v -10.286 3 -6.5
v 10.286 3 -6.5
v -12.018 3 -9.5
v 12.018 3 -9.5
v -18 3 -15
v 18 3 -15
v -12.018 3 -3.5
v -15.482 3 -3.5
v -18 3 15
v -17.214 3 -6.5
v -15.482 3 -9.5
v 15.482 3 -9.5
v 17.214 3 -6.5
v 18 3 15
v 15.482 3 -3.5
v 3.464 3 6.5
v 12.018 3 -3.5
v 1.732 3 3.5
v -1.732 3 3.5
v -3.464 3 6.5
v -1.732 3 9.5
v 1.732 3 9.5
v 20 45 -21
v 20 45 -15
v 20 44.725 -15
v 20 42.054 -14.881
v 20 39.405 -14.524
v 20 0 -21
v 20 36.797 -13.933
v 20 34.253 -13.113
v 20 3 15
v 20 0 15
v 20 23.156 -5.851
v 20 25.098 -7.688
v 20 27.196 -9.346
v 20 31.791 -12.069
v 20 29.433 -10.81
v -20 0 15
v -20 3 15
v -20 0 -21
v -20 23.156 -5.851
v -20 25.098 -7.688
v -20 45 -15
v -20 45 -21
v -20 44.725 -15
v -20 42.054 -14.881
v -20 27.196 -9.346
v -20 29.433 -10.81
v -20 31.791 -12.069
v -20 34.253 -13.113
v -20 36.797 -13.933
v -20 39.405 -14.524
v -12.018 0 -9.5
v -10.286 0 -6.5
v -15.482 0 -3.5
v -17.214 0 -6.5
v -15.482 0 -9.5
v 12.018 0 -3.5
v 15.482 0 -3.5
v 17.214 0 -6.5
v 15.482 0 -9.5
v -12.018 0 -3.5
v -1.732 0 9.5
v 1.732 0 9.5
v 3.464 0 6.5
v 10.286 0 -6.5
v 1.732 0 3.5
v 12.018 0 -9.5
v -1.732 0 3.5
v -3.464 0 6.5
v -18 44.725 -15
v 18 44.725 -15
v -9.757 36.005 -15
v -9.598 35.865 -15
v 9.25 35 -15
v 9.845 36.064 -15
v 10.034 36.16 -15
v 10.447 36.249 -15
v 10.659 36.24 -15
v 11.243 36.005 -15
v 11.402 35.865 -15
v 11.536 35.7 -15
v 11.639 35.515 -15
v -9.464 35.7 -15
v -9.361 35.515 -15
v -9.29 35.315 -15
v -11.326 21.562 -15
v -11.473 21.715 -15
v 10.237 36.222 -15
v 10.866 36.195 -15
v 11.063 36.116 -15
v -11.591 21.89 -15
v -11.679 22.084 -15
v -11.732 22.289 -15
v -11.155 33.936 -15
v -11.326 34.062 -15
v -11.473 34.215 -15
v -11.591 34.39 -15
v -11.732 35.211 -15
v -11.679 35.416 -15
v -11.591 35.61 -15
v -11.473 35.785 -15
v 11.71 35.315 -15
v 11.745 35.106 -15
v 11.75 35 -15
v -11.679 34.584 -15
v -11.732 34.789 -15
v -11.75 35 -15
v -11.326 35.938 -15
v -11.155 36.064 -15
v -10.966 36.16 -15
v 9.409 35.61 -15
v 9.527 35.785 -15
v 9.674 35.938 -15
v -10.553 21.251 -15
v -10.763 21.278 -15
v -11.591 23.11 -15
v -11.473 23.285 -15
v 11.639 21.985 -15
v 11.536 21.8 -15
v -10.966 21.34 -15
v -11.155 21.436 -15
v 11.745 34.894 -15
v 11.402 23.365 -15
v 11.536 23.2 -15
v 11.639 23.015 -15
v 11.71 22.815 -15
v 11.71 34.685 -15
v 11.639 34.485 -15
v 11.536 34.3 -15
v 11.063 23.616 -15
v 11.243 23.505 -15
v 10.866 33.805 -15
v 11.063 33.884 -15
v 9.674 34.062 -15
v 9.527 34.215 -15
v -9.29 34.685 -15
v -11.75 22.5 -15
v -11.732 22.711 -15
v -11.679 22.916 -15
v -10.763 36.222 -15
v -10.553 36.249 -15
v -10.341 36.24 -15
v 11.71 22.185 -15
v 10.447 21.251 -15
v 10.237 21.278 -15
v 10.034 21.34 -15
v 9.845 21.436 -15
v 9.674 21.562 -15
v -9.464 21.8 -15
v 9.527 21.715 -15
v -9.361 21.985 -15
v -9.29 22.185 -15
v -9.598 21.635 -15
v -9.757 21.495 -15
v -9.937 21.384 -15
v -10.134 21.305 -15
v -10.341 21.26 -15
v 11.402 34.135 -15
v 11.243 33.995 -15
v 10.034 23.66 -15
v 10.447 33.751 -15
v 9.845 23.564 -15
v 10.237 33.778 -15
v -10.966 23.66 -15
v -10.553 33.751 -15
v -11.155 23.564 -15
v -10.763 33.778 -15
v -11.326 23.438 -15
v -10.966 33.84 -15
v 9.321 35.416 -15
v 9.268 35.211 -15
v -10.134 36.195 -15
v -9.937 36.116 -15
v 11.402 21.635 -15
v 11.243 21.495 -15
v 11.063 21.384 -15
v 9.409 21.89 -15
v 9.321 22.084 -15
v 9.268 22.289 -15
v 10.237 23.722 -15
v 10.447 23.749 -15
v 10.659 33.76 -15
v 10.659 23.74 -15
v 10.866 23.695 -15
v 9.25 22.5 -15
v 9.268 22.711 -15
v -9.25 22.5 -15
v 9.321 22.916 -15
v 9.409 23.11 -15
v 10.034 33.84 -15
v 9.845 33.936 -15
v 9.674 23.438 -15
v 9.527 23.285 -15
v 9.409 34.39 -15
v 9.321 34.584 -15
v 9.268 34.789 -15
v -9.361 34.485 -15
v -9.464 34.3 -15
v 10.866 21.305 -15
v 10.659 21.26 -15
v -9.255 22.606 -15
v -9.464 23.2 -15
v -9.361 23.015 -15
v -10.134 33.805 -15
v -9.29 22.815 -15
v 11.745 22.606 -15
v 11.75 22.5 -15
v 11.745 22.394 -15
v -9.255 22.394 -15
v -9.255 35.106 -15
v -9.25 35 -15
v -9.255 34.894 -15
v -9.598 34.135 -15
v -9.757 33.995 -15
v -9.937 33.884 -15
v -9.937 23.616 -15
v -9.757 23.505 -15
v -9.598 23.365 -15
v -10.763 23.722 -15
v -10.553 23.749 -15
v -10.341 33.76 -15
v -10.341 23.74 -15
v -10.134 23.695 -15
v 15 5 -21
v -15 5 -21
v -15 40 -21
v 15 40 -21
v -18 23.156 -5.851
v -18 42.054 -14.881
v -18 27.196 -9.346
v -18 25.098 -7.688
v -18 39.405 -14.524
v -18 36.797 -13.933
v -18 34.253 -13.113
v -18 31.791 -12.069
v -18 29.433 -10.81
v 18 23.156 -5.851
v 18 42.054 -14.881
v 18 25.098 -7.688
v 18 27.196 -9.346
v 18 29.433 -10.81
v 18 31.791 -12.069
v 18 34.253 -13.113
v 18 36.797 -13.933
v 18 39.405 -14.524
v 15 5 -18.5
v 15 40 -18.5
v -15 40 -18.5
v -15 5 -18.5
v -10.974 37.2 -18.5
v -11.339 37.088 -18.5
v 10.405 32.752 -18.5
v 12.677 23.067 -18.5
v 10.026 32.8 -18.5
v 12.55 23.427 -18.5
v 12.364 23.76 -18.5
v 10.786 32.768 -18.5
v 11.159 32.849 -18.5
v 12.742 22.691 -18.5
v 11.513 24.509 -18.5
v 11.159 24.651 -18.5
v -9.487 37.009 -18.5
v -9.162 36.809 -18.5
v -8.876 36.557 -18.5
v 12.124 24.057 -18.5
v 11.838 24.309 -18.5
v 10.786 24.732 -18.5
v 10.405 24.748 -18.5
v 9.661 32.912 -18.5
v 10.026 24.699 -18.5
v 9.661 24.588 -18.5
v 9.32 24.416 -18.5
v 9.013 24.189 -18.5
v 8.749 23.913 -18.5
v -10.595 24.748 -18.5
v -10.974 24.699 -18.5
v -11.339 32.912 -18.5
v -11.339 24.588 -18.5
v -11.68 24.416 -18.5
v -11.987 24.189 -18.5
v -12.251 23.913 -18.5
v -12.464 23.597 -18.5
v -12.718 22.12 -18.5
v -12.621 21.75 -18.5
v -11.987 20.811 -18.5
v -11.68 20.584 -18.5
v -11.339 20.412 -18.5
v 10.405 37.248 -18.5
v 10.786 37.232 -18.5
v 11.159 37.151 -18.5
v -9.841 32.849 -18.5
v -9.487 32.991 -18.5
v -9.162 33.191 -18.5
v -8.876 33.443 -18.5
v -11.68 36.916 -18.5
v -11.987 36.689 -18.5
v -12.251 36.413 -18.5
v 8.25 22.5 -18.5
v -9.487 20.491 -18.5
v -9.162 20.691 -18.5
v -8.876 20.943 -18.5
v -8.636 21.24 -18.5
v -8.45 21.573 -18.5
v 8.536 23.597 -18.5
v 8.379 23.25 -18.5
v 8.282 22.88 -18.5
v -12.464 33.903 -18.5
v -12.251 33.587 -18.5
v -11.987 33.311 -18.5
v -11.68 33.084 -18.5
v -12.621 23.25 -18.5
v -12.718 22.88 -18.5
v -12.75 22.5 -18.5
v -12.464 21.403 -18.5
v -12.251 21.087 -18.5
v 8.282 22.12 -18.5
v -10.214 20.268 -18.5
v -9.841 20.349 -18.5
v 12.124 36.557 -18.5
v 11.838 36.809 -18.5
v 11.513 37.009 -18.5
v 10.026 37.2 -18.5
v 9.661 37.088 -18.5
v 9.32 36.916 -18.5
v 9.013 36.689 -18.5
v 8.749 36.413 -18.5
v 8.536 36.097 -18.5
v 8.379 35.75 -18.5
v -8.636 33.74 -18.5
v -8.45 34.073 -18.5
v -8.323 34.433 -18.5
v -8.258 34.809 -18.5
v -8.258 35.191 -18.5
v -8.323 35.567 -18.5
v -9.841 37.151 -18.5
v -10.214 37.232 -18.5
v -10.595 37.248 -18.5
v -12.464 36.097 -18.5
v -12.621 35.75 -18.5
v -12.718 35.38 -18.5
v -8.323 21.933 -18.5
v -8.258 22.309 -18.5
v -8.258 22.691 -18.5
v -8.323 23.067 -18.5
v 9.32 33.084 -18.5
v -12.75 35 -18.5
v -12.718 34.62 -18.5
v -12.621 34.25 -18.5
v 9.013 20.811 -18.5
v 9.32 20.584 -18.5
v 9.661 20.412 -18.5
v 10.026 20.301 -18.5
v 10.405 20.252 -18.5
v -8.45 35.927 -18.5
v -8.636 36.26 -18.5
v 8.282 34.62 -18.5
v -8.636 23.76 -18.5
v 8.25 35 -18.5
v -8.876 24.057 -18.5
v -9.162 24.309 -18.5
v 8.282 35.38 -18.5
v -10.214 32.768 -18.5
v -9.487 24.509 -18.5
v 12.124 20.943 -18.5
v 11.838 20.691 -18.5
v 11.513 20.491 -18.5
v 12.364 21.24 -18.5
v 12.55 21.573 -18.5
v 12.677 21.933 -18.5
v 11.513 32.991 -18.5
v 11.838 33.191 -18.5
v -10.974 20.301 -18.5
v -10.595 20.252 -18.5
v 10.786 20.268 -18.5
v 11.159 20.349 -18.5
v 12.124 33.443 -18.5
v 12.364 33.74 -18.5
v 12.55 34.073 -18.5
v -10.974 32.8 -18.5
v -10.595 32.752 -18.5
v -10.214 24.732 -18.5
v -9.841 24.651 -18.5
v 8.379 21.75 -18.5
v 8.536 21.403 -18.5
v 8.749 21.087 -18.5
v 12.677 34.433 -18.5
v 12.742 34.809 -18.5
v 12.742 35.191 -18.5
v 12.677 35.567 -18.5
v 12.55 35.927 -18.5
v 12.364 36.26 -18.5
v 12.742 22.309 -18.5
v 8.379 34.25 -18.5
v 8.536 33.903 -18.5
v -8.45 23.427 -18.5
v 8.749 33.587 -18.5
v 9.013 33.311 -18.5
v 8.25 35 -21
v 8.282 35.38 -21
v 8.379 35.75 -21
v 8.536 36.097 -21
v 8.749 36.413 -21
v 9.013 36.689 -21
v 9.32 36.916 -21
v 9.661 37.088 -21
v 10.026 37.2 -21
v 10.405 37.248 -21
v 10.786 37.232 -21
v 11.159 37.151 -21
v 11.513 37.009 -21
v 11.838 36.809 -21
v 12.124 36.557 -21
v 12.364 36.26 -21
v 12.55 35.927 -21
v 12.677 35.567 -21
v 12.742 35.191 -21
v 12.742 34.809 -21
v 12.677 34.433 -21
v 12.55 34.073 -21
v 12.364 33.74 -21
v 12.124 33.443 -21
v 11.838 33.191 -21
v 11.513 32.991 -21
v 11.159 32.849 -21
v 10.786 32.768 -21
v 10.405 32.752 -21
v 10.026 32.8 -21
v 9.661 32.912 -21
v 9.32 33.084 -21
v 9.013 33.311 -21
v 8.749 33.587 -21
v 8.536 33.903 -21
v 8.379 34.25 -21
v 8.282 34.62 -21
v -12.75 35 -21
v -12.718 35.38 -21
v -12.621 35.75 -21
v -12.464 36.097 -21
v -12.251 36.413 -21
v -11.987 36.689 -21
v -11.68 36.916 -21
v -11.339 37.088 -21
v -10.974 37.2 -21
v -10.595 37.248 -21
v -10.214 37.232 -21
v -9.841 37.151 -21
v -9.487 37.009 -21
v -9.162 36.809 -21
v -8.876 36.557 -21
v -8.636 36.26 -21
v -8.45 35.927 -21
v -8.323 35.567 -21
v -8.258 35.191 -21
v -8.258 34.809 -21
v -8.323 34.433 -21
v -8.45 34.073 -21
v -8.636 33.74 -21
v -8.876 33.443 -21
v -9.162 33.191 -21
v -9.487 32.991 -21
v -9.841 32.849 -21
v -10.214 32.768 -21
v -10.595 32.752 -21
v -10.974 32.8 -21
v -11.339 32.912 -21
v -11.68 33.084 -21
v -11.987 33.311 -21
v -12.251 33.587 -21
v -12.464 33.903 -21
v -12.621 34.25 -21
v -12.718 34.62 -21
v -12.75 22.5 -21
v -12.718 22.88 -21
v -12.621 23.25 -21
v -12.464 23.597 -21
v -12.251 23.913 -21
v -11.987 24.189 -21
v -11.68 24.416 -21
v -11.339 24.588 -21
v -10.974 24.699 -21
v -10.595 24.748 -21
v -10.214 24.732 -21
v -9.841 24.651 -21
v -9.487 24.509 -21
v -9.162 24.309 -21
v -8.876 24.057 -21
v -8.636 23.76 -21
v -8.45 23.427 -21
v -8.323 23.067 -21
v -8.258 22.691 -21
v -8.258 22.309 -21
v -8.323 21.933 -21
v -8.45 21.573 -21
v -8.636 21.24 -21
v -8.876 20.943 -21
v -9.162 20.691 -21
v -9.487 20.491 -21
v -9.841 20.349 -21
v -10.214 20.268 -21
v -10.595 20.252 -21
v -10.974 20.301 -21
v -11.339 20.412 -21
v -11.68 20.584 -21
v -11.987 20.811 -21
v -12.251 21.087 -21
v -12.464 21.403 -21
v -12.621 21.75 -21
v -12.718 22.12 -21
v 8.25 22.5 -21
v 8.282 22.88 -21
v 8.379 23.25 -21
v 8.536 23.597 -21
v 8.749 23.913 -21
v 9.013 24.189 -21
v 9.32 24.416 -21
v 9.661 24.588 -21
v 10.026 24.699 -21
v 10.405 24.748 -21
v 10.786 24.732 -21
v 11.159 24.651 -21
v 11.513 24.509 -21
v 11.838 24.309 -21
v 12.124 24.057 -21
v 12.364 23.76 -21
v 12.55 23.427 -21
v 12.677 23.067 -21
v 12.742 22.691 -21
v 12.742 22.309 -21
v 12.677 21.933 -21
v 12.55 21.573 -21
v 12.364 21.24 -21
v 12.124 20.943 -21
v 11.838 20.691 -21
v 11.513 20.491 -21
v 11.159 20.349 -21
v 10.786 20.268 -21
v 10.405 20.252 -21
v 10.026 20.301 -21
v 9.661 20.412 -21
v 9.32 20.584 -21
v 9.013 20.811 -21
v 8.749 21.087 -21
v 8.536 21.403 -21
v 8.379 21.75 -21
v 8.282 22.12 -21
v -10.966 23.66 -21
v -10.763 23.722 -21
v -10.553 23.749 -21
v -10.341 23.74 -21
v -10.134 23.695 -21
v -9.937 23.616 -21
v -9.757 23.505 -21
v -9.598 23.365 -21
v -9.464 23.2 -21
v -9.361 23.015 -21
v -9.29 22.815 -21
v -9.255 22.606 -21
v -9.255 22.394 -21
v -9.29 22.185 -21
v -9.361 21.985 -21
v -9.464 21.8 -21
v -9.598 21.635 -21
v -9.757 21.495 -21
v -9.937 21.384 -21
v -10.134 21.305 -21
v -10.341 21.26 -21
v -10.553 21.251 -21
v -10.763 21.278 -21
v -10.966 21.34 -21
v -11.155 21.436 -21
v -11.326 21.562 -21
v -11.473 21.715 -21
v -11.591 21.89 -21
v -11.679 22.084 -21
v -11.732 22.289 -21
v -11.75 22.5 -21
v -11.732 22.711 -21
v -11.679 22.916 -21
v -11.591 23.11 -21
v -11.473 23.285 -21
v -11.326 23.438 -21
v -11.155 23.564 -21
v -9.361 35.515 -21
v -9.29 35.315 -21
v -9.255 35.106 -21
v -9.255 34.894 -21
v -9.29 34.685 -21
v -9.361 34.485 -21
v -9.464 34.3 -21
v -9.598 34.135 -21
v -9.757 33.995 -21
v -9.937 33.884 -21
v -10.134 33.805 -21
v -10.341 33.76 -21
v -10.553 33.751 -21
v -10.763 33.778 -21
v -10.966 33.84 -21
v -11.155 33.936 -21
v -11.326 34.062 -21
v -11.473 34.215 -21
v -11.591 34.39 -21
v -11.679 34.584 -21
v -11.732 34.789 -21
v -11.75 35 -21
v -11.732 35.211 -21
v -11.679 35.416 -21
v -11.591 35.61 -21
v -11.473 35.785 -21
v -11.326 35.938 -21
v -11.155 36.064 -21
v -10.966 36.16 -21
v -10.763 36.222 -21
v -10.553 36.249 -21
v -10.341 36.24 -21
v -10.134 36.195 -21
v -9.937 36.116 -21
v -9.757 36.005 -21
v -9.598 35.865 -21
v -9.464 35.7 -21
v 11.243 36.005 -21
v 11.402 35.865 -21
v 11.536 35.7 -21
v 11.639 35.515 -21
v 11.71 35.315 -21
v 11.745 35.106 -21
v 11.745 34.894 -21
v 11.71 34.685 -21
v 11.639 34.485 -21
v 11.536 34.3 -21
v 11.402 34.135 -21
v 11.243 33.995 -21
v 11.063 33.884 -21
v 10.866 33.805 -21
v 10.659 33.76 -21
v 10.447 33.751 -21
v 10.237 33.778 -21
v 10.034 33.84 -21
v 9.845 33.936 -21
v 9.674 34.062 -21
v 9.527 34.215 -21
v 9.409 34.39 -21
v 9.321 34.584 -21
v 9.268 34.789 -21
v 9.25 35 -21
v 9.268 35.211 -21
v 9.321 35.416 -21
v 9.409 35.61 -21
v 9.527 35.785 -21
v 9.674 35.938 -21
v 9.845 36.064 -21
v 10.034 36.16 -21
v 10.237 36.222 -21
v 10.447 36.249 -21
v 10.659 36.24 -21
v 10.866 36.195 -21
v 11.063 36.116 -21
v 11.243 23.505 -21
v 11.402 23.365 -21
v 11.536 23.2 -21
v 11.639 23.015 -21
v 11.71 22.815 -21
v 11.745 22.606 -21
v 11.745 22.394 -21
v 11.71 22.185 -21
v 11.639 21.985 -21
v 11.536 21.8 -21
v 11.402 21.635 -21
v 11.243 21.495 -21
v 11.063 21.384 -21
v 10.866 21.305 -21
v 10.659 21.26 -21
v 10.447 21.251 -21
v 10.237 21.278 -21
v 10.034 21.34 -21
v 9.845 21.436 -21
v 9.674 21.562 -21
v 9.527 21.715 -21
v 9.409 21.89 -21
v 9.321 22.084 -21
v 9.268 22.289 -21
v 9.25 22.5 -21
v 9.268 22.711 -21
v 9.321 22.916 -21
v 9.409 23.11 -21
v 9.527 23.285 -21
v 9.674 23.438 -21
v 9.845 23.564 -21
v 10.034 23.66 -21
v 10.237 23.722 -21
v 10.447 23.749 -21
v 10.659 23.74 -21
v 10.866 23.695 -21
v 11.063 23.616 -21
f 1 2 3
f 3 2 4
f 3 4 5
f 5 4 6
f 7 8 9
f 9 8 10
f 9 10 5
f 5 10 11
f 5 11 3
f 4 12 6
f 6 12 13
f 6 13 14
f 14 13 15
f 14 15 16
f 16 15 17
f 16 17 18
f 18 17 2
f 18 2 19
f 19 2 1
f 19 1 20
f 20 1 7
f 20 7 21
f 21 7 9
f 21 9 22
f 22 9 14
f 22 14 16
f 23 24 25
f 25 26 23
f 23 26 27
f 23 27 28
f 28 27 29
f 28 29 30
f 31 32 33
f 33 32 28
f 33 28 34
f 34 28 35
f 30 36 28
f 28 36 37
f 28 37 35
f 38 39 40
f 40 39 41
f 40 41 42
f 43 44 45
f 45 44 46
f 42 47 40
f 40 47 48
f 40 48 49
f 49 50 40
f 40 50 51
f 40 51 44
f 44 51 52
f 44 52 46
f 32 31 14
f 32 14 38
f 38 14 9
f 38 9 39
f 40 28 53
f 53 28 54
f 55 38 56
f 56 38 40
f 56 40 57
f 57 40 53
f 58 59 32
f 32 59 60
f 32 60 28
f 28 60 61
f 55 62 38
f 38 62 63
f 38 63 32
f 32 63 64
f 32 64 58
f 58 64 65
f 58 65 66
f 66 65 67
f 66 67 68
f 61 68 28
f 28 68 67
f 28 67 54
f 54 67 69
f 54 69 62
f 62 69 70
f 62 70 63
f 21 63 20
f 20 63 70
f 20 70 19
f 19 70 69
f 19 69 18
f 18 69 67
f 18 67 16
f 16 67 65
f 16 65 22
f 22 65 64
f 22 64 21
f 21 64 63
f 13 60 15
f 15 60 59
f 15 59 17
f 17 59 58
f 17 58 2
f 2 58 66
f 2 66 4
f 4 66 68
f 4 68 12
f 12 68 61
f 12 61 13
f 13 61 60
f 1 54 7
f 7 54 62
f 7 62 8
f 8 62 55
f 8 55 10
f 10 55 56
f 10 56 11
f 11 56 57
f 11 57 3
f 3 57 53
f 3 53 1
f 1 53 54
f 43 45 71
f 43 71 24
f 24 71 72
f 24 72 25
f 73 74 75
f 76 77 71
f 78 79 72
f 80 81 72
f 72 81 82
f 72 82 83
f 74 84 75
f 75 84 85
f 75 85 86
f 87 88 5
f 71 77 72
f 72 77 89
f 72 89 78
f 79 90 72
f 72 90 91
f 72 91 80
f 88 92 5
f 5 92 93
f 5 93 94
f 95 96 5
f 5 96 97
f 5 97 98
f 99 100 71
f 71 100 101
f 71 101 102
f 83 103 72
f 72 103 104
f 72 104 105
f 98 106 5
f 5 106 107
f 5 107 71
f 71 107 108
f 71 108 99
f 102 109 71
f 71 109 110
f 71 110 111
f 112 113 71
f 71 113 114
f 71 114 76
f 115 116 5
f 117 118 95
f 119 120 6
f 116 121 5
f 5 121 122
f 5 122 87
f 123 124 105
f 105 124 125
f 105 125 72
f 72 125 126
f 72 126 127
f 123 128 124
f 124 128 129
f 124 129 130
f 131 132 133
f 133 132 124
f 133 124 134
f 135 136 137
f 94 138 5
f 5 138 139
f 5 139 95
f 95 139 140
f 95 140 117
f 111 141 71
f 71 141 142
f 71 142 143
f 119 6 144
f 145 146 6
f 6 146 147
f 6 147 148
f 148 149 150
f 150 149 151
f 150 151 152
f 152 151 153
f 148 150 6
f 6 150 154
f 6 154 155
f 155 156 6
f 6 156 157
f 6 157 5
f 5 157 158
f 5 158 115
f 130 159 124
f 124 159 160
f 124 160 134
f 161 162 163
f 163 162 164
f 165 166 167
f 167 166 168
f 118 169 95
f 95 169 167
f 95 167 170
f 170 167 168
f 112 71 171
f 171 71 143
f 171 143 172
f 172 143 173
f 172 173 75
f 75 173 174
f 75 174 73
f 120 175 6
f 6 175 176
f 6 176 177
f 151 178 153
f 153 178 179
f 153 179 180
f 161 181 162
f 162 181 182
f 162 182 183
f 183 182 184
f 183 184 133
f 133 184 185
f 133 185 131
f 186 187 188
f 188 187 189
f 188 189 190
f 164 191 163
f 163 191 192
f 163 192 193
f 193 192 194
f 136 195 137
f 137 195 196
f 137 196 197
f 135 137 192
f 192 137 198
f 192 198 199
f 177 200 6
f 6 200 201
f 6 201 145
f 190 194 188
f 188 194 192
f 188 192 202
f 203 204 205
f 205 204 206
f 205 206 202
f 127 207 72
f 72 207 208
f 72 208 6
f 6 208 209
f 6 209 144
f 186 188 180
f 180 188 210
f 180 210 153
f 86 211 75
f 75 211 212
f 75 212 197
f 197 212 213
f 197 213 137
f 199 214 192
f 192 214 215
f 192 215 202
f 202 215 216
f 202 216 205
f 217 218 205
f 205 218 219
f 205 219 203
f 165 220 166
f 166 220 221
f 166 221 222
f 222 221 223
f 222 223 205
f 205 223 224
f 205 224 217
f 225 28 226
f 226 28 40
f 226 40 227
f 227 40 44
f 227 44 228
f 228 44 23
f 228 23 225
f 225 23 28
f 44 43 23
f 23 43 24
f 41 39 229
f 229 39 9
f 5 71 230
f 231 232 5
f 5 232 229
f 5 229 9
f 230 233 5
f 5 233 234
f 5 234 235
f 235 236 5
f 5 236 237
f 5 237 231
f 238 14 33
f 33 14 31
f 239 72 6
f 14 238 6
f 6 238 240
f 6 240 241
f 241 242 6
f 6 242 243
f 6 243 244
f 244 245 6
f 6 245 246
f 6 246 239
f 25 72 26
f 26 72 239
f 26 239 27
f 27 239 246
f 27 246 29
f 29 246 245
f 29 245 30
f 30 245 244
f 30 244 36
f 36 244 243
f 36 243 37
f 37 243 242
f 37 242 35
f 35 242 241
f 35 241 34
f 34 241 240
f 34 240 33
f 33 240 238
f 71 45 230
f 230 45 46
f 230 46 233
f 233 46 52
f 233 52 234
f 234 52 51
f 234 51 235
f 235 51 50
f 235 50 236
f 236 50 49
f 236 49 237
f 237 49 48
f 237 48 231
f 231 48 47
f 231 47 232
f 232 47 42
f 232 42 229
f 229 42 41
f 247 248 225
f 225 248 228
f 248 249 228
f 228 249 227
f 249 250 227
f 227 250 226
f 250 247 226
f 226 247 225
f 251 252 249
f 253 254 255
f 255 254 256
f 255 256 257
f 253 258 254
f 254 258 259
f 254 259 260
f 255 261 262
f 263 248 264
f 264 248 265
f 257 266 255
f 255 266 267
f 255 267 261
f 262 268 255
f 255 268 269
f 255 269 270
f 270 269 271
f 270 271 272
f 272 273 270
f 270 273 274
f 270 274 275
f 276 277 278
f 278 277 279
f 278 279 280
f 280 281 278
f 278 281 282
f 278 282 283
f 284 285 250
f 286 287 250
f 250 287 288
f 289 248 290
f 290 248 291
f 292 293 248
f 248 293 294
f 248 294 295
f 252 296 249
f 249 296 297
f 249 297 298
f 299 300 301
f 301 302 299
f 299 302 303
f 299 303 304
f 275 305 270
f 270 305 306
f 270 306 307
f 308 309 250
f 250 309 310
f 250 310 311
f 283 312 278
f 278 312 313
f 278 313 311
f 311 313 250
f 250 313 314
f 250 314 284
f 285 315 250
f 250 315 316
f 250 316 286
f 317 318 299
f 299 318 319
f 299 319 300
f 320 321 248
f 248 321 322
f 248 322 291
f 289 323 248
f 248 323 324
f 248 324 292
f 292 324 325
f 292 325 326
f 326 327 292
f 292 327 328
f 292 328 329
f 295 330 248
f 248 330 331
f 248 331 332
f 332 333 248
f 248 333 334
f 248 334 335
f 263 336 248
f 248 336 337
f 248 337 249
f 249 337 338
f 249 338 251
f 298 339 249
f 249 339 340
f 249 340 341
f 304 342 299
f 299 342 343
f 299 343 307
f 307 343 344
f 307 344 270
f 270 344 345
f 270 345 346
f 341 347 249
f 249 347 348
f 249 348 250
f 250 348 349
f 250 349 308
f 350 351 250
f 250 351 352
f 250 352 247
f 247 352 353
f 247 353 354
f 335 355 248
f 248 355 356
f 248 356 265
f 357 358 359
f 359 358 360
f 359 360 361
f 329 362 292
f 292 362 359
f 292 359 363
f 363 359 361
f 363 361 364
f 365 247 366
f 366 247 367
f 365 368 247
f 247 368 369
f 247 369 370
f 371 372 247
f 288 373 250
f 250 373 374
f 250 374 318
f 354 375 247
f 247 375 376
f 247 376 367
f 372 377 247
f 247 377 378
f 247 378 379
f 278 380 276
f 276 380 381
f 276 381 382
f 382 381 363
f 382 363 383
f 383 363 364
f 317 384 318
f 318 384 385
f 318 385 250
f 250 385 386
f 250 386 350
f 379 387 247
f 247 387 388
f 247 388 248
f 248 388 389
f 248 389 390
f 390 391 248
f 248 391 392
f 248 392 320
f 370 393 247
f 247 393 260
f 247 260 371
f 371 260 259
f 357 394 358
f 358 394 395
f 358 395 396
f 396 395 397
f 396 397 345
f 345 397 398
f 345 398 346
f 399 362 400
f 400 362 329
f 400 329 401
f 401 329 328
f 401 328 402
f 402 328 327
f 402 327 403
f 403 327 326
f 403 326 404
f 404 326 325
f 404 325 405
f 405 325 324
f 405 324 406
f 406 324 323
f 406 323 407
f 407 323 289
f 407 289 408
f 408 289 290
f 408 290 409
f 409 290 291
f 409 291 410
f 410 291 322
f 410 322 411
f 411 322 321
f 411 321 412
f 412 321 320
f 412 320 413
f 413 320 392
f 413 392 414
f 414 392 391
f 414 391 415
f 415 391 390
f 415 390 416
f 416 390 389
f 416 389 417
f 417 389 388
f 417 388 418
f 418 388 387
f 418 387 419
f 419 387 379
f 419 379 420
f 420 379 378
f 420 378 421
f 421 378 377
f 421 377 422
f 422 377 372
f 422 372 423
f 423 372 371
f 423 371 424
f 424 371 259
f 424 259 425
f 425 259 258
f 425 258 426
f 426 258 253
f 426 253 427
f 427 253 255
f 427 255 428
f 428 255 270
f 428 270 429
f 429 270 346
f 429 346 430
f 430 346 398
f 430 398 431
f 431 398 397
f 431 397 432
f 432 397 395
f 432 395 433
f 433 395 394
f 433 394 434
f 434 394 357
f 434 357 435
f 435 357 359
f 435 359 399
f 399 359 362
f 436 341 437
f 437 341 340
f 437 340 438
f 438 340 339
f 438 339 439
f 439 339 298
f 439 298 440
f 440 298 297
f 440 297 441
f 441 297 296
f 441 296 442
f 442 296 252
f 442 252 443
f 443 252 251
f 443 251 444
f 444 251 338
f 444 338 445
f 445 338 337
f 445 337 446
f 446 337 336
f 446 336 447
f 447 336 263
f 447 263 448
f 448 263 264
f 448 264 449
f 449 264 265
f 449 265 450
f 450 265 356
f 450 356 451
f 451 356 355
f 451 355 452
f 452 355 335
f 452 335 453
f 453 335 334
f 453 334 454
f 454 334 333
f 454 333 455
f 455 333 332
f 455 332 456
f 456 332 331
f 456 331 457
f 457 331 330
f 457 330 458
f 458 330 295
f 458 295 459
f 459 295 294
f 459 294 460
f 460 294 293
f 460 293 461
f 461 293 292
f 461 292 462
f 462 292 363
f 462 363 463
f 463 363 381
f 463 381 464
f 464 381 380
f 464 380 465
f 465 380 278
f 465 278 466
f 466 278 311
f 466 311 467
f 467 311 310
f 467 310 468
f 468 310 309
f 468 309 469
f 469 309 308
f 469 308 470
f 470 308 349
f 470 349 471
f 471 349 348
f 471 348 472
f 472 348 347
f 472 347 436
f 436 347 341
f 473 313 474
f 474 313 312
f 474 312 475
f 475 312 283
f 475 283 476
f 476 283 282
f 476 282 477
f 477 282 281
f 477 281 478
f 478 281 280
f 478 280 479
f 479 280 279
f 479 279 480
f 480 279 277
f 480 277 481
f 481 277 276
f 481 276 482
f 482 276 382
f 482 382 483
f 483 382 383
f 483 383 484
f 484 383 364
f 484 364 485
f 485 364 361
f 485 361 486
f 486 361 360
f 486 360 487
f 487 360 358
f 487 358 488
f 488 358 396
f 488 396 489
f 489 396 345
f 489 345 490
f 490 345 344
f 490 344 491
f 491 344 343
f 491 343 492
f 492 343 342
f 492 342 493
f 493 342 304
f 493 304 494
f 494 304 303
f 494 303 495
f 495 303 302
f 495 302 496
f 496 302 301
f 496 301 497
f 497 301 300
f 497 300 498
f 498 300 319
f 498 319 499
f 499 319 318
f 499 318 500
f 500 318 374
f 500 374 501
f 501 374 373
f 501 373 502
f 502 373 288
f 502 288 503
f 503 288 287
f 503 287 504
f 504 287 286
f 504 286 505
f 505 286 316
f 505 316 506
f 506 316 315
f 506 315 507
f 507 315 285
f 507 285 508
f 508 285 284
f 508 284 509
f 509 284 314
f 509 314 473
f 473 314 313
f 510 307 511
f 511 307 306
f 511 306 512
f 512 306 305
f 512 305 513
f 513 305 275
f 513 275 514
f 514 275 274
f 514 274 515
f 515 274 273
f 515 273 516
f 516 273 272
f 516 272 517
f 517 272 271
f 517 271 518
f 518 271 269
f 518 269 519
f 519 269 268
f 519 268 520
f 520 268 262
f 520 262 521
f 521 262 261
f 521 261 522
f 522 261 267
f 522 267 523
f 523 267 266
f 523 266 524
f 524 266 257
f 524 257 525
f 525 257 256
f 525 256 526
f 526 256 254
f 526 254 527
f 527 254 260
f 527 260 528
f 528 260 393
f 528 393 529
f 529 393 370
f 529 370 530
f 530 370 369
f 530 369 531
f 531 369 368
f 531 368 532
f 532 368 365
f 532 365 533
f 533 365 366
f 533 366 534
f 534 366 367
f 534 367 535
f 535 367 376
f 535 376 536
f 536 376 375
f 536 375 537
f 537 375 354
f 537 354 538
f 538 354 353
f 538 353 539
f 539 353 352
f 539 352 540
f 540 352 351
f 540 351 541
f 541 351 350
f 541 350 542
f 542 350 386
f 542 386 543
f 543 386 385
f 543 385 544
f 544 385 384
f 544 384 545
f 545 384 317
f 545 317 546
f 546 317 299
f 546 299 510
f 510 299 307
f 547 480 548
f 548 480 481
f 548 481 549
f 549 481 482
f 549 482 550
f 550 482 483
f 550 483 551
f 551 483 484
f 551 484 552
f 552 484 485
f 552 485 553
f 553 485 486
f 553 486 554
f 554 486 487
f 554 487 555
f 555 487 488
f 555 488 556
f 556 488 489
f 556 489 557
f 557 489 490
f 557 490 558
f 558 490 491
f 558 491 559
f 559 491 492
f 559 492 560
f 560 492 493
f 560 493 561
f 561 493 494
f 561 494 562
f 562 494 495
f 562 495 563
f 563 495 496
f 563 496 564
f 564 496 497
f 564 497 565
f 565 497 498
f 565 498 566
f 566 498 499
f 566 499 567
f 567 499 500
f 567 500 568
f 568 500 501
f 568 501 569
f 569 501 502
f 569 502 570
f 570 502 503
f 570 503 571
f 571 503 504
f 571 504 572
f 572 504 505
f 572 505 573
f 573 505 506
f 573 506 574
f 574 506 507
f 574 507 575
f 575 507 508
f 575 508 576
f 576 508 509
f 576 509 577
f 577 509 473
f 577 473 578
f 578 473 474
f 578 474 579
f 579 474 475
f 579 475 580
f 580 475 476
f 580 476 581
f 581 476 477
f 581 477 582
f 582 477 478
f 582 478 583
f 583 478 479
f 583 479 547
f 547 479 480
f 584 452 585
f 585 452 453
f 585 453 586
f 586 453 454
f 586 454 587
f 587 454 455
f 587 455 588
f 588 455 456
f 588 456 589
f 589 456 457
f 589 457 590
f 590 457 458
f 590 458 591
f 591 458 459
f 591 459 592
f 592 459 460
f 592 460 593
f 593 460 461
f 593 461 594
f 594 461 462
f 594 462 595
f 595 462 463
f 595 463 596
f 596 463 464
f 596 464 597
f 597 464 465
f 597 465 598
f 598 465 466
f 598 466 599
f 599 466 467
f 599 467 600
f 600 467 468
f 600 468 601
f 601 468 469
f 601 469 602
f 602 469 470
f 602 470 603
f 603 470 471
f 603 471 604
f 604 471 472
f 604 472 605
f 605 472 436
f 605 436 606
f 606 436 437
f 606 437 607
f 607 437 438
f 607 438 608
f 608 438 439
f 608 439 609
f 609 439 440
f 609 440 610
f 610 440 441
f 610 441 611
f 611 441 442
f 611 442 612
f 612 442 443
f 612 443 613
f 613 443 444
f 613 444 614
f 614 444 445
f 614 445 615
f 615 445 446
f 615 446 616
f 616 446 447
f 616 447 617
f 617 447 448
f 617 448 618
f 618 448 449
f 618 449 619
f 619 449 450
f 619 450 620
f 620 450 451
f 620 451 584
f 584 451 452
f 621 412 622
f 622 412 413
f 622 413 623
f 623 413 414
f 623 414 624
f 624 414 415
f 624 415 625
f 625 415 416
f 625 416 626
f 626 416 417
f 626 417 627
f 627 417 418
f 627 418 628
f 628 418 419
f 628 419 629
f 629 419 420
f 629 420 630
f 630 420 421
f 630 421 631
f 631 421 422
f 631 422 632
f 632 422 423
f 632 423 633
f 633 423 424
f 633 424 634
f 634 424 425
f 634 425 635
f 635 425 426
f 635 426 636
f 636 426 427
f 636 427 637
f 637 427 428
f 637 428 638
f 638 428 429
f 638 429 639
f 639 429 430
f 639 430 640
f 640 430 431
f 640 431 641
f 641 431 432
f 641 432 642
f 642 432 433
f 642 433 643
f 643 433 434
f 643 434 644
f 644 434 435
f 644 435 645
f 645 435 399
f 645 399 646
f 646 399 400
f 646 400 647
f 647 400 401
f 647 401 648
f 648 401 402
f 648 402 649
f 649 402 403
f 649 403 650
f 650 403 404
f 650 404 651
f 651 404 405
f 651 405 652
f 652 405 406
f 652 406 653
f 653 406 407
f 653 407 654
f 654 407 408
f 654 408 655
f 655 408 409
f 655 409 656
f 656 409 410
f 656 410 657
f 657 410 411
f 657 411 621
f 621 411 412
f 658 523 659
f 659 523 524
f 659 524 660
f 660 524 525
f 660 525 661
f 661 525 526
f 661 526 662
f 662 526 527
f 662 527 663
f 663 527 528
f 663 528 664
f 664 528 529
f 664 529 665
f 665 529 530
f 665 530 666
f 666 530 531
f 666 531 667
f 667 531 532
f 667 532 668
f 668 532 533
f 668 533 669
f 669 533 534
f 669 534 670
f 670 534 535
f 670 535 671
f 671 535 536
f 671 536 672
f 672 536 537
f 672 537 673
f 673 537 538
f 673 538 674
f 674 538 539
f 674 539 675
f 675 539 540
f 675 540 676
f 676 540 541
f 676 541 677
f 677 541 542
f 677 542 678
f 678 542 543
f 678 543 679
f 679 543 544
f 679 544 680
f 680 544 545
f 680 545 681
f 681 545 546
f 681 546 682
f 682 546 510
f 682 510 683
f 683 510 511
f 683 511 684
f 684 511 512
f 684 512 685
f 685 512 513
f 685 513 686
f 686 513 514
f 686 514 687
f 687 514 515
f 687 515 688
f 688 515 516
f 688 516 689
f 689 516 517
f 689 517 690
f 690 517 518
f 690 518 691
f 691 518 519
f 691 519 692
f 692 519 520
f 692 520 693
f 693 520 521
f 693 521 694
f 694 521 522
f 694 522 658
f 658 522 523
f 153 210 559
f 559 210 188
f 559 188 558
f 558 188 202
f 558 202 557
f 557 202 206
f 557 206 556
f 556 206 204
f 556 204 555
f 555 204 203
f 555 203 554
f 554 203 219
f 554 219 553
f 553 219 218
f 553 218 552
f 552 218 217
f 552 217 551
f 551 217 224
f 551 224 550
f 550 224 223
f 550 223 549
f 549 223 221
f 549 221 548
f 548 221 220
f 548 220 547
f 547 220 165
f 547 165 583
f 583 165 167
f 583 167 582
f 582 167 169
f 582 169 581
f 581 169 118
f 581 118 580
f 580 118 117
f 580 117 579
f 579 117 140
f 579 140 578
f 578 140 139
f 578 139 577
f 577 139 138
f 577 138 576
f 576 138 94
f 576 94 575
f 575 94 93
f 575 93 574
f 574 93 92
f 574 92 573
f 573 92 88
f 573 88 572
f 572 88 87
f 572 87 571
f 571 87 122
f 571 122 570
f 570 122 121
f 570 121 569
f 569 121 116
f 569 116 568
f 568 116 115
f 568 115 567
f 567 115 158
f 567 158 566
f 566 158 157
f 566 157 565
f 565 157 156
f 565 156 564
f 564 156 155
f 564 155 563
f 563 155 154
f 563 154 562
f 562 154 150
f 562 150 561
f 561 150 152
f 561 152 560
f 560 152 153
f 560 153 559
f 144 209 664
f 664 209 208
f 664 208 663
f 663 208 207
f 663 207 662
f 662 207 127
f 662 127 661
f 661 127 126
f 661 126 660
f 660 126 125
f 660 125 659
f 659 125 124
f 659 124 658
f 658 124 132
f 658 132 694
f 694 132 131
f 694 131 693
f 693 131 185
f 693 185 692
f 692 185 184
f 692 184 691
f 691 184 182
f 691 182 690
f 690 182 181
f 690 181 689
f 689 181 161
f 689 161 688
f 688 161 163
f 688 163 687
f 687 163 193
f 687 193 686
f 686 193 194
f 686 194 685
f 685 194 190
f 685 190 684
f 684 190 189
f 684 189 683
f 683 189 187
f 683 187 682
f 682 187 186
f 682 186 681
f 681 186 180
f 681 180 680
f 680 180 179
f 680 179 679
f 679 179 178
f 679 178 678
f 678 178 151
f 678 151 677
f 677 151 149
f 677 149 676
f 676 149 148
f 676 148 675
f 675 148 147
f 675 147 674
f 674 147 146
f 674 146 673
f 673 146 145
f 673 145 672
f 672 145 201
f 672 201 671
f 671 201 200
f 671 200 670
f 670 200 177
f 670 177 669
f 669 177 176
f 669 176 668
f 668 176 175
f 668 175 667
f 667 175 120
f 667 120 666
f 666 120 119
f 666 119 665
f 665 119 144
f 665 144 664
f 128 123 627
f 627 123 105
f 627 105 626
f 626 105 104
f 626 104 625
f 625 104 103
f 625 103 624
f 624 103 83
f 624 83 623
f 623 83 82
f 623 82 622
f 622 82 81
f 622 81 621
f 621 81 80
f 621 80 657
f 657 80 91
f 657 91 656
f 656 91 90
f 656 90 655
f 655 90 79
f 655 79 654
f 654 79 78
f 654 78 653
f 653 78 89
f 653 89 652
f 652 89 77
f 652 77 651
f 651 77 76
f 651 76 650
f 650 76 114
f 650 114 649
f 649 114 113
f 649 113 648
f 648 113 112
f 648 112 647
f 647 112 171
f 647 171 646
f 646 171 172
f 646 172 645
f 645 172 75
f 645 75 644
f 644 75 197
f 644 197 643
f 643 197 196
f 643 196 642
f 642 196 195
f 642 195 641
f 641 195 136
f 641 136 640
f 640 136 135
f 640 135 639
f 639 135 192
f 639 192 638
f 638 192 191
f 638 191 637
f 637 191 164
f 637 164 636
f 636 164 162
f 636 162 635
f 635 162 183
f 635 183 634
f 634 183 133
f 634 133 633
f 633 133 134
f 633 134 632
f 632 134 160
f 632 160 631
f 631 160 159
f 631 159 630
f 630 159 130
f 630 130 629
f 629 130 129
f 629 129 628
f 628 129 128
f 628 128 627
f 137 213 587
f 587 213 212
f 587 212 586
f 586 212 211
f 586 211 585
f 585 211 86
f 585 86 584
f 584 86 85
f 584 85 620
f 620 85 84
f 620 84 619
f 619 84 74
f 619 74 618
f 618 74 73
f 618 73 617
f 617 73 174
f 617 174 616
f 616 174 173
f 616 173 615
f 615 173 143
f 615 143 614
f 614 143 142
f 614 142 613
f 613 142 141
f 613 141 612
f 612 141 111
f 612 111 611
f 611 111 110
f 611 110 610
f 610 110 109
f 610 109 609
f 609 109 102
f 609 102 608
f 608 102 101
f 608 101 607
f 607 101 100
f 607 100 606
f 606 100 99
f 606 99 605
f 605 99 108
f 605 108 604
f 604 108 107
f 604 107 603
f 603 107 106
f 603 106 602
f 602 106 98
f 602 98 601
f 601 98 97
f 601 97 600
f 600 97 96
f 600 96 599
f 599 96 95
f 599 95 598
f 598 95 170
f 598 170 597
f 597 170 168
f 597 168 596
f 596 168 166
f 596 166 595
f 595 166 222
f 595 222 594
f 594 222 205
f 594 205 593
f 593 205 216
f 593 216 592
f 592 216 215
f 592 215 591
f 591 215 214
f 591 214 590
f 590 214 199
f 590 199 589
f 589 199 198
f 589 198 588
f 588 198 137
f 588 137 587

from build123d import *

# Parameters (mm, degrees)
SKETCH1_W             = 40
SKETCH1_H             = 30
BOSS_EXTRUDE1_DEPTH   = 3
CUT_EXTRUDE1_REACH    = 27.179
SKETCH3_W             = 40
SKETCH3_H             = 6
BOSS_EXTRUDE2_DEPTH   = 45
RIB1_REACH            = 65.765
SKETCH5_WALL_W        = 171.255680626
SKETCH5_WALL_H        = 2
RIB2_START            = -2
RIB2_DEPTH            = 2
FILLET1_R             = 30
SKETCH7_W             = 30
SKETCH7_H             = 35
SKETCH7_R             = 2.25
CUT_EXTRUDE2_DEPTH    = 2.5
F_2_5MM_DOWEL_HOLE1_D = 2.5


# Read off the part's stored shape, not the designer's step: Rib2
with BuildPart() as part:
    # Sketch1 → Boss-Extrude1 (new body)
    with BuildSketch(Plane(origin=(0, 0, 0), x_dir=(1, 0, 0), z_dir=(0, 1, 0))):
        Rectangle(SKETCH1_W, SKETCH1_H)
    extrude(amount=BOSS_EXTRUDE1_DEPTH)

    # Sketch2 → Cut-Extrude1 (cut, up to next)
    with BuildSketch(Plane(origin=(0, 3, 0), x_dir=(1, 0, 0), z_dir=(0, 1, 0)), mode=Mode.PRIVATE) as cut_extrude1_sk1:
        Polygon((-10.285898385, 6.5), (-12.017949192, 9.5), (-15.482050808, 9.5), (-17.214101615, 6.5), (-15.482050808, 3.5), (-12.017949192, 3.5), align=None)
    cut_extrude1_tool1 = extrude(cut_extrude1_sk1.sketch, amount=-CUT_EXTRUDE1_REACH, mode=Mode.PRIVATE) & part.part
    # Sketch2 → Cut-Extrude1 (cut, up to next)
    with BuildSketch(Plane(origin=(0, 3, 0), x_dir=(1, 0, 0), z_dir=(0, 1, 0)), mode=Mode.PRIVATE) as cut_extrude1_sk2:
        Polygon((17.214101615, 6.5), (15.482050808, 9.5), (12.017949192, 9.5), (10.285898385, 6.5), (12.017949192, 3.5), (15.482050808, 3.5), align=None)
    cut_extrude1_tool2 = extrude(cut_extrude1_sk2.sketch, amount=-CUT_EXTRUDE1_REACH, mode=Mode.PRIVATE) & part.part
    # Sketch2 → Cut-Extrude1 (cut, up to next)
    with BuildSketch(Plane(origin=(0, 3, 0), x_dir=(1, 0, 0), z_dir=(0, 1, 0)), mode=Mode.PRIVATE) as cut_extrude1_sk3:
        Polygon((-1.732050808, -9.5), (1.732050808, -9.5), (3.464101615, -6.5), (1.732050808, -3.5), (-1.732050808, -3.5), (-3.464101615, -6.5), align=None)
    cut_extrude1_tool3 = extrude(cut_extrude1_sk3.sketch, amount=-CUT_EXTRUDE1_REACH, mode=Mode.PRIVATE) & part.part
    add(cut_extrude1_tool1.solids().sort_by_distance((-13.75, 3, -6.5))[0], mode=Mode.SUBTRACT)
    add(cut_extrude1_tool2.solids().sort_by_distance((13.75, 3, -6.5))[0], mode=Mode.SUBTRACT)
    add(cut_extrude1_tool3.solids().sort_by_distance((0, 3, 6.5))[0], mode=Mode.SUBTRACT)

    # Sketch3 → Boss-Extrude2 (add)
    with BuildSketch(Plane.XZ):
        with Locations((0, -18)):
            Rectangle(SKETCH3_W, SKETCH3_H)
    extrude(amount=-BOSS_EXTRUDE2_DEPTH)

    # Sketch5 wall → Rib1 (add, up to next)
    with BuildSketch(Plane(origin=(-20, 17.5, 0), x_dir=(0, -0.695022096847, 0.718988376049), z_dir=(0, 0.718988376049, 0.695022096847)), mode=Mode.PRIVATE) as rib1_sk1:
        with Locations((0, 1)):
            Rectangle(SKETCH5_WALL_W, SKETCH5_WALL_H)
    rib1_tool1 = extrude(rib1_sk1.sketch, amount=-RIB1_REACH, mode=Mode.PRIVATE) - part.part
    add(rib1_tool1.solids().sort_by_distance((-20, 17.5, 0))[0])

    # Rib2 outline → Rib2 (add)
    with BuildSketch(Plane(origin=(20, 0, 0), x_dir=(0, 0, -1), z_dir=(1, 0, 0)).offset(RIB2_START)):
        Polygon((15, 32), (-15, 3), (15, 3), align=None)
    extrude(amount=RIB2_DEPTH)

    # Fillet1
    fillet1_edges = [part.edges().sort_by_distance(p)[0] for p in [
        (19, 32, -15),
        (-19, 32, -15),
    ]]
    fillet(fillet1_edges, radius=FILLET1_R)

    # Sketch7 → Cut-Extrude2 (cut)
    with BuildSketch(Plane(origin=(0, 0, -21), x_dir=(-1, 0, 0), z_dir=(0, 0, -1))):
        with Locations((0, 22.5)):
            Rectangle(SKETCH7_W, SKETCH7_H)
        with Locations((-10.5, 35)):
            Circle(SKETCH7_R, mode=Mode.SUBTRACT)
        with Locations((10.5, 35)):
            Circle(SKETCH7_R, mode=Mode.SUBTRACT)
        with Locations((10.5, 22.5)):
            Circle(SKETCH7_R, mode=Mode.SUBTRACT)
        with Locations((-10.5, 22.5)):
            Circle(SKETCH7_R, mode=Mode.SUBTRACT)
    extrude(amount=-CUT_EXTRUDE2_DEPTH, mode=Mode.SUBTRACT)

    # Ø2.5mm Dowel Hole1 (through all)
    with Locations(Plane(origin=(0, 0, -21), x_dir=(-1, 0, 0), z_dir=(0, 0, -1))):
        with Locations((10.5, 35), (-10.5, 35), (-10.5, 22.5), (10.5, 22.5)):
            Hole(F_2_5MM_DOWEL_HOLE1_D / 2)


solid = part.part
